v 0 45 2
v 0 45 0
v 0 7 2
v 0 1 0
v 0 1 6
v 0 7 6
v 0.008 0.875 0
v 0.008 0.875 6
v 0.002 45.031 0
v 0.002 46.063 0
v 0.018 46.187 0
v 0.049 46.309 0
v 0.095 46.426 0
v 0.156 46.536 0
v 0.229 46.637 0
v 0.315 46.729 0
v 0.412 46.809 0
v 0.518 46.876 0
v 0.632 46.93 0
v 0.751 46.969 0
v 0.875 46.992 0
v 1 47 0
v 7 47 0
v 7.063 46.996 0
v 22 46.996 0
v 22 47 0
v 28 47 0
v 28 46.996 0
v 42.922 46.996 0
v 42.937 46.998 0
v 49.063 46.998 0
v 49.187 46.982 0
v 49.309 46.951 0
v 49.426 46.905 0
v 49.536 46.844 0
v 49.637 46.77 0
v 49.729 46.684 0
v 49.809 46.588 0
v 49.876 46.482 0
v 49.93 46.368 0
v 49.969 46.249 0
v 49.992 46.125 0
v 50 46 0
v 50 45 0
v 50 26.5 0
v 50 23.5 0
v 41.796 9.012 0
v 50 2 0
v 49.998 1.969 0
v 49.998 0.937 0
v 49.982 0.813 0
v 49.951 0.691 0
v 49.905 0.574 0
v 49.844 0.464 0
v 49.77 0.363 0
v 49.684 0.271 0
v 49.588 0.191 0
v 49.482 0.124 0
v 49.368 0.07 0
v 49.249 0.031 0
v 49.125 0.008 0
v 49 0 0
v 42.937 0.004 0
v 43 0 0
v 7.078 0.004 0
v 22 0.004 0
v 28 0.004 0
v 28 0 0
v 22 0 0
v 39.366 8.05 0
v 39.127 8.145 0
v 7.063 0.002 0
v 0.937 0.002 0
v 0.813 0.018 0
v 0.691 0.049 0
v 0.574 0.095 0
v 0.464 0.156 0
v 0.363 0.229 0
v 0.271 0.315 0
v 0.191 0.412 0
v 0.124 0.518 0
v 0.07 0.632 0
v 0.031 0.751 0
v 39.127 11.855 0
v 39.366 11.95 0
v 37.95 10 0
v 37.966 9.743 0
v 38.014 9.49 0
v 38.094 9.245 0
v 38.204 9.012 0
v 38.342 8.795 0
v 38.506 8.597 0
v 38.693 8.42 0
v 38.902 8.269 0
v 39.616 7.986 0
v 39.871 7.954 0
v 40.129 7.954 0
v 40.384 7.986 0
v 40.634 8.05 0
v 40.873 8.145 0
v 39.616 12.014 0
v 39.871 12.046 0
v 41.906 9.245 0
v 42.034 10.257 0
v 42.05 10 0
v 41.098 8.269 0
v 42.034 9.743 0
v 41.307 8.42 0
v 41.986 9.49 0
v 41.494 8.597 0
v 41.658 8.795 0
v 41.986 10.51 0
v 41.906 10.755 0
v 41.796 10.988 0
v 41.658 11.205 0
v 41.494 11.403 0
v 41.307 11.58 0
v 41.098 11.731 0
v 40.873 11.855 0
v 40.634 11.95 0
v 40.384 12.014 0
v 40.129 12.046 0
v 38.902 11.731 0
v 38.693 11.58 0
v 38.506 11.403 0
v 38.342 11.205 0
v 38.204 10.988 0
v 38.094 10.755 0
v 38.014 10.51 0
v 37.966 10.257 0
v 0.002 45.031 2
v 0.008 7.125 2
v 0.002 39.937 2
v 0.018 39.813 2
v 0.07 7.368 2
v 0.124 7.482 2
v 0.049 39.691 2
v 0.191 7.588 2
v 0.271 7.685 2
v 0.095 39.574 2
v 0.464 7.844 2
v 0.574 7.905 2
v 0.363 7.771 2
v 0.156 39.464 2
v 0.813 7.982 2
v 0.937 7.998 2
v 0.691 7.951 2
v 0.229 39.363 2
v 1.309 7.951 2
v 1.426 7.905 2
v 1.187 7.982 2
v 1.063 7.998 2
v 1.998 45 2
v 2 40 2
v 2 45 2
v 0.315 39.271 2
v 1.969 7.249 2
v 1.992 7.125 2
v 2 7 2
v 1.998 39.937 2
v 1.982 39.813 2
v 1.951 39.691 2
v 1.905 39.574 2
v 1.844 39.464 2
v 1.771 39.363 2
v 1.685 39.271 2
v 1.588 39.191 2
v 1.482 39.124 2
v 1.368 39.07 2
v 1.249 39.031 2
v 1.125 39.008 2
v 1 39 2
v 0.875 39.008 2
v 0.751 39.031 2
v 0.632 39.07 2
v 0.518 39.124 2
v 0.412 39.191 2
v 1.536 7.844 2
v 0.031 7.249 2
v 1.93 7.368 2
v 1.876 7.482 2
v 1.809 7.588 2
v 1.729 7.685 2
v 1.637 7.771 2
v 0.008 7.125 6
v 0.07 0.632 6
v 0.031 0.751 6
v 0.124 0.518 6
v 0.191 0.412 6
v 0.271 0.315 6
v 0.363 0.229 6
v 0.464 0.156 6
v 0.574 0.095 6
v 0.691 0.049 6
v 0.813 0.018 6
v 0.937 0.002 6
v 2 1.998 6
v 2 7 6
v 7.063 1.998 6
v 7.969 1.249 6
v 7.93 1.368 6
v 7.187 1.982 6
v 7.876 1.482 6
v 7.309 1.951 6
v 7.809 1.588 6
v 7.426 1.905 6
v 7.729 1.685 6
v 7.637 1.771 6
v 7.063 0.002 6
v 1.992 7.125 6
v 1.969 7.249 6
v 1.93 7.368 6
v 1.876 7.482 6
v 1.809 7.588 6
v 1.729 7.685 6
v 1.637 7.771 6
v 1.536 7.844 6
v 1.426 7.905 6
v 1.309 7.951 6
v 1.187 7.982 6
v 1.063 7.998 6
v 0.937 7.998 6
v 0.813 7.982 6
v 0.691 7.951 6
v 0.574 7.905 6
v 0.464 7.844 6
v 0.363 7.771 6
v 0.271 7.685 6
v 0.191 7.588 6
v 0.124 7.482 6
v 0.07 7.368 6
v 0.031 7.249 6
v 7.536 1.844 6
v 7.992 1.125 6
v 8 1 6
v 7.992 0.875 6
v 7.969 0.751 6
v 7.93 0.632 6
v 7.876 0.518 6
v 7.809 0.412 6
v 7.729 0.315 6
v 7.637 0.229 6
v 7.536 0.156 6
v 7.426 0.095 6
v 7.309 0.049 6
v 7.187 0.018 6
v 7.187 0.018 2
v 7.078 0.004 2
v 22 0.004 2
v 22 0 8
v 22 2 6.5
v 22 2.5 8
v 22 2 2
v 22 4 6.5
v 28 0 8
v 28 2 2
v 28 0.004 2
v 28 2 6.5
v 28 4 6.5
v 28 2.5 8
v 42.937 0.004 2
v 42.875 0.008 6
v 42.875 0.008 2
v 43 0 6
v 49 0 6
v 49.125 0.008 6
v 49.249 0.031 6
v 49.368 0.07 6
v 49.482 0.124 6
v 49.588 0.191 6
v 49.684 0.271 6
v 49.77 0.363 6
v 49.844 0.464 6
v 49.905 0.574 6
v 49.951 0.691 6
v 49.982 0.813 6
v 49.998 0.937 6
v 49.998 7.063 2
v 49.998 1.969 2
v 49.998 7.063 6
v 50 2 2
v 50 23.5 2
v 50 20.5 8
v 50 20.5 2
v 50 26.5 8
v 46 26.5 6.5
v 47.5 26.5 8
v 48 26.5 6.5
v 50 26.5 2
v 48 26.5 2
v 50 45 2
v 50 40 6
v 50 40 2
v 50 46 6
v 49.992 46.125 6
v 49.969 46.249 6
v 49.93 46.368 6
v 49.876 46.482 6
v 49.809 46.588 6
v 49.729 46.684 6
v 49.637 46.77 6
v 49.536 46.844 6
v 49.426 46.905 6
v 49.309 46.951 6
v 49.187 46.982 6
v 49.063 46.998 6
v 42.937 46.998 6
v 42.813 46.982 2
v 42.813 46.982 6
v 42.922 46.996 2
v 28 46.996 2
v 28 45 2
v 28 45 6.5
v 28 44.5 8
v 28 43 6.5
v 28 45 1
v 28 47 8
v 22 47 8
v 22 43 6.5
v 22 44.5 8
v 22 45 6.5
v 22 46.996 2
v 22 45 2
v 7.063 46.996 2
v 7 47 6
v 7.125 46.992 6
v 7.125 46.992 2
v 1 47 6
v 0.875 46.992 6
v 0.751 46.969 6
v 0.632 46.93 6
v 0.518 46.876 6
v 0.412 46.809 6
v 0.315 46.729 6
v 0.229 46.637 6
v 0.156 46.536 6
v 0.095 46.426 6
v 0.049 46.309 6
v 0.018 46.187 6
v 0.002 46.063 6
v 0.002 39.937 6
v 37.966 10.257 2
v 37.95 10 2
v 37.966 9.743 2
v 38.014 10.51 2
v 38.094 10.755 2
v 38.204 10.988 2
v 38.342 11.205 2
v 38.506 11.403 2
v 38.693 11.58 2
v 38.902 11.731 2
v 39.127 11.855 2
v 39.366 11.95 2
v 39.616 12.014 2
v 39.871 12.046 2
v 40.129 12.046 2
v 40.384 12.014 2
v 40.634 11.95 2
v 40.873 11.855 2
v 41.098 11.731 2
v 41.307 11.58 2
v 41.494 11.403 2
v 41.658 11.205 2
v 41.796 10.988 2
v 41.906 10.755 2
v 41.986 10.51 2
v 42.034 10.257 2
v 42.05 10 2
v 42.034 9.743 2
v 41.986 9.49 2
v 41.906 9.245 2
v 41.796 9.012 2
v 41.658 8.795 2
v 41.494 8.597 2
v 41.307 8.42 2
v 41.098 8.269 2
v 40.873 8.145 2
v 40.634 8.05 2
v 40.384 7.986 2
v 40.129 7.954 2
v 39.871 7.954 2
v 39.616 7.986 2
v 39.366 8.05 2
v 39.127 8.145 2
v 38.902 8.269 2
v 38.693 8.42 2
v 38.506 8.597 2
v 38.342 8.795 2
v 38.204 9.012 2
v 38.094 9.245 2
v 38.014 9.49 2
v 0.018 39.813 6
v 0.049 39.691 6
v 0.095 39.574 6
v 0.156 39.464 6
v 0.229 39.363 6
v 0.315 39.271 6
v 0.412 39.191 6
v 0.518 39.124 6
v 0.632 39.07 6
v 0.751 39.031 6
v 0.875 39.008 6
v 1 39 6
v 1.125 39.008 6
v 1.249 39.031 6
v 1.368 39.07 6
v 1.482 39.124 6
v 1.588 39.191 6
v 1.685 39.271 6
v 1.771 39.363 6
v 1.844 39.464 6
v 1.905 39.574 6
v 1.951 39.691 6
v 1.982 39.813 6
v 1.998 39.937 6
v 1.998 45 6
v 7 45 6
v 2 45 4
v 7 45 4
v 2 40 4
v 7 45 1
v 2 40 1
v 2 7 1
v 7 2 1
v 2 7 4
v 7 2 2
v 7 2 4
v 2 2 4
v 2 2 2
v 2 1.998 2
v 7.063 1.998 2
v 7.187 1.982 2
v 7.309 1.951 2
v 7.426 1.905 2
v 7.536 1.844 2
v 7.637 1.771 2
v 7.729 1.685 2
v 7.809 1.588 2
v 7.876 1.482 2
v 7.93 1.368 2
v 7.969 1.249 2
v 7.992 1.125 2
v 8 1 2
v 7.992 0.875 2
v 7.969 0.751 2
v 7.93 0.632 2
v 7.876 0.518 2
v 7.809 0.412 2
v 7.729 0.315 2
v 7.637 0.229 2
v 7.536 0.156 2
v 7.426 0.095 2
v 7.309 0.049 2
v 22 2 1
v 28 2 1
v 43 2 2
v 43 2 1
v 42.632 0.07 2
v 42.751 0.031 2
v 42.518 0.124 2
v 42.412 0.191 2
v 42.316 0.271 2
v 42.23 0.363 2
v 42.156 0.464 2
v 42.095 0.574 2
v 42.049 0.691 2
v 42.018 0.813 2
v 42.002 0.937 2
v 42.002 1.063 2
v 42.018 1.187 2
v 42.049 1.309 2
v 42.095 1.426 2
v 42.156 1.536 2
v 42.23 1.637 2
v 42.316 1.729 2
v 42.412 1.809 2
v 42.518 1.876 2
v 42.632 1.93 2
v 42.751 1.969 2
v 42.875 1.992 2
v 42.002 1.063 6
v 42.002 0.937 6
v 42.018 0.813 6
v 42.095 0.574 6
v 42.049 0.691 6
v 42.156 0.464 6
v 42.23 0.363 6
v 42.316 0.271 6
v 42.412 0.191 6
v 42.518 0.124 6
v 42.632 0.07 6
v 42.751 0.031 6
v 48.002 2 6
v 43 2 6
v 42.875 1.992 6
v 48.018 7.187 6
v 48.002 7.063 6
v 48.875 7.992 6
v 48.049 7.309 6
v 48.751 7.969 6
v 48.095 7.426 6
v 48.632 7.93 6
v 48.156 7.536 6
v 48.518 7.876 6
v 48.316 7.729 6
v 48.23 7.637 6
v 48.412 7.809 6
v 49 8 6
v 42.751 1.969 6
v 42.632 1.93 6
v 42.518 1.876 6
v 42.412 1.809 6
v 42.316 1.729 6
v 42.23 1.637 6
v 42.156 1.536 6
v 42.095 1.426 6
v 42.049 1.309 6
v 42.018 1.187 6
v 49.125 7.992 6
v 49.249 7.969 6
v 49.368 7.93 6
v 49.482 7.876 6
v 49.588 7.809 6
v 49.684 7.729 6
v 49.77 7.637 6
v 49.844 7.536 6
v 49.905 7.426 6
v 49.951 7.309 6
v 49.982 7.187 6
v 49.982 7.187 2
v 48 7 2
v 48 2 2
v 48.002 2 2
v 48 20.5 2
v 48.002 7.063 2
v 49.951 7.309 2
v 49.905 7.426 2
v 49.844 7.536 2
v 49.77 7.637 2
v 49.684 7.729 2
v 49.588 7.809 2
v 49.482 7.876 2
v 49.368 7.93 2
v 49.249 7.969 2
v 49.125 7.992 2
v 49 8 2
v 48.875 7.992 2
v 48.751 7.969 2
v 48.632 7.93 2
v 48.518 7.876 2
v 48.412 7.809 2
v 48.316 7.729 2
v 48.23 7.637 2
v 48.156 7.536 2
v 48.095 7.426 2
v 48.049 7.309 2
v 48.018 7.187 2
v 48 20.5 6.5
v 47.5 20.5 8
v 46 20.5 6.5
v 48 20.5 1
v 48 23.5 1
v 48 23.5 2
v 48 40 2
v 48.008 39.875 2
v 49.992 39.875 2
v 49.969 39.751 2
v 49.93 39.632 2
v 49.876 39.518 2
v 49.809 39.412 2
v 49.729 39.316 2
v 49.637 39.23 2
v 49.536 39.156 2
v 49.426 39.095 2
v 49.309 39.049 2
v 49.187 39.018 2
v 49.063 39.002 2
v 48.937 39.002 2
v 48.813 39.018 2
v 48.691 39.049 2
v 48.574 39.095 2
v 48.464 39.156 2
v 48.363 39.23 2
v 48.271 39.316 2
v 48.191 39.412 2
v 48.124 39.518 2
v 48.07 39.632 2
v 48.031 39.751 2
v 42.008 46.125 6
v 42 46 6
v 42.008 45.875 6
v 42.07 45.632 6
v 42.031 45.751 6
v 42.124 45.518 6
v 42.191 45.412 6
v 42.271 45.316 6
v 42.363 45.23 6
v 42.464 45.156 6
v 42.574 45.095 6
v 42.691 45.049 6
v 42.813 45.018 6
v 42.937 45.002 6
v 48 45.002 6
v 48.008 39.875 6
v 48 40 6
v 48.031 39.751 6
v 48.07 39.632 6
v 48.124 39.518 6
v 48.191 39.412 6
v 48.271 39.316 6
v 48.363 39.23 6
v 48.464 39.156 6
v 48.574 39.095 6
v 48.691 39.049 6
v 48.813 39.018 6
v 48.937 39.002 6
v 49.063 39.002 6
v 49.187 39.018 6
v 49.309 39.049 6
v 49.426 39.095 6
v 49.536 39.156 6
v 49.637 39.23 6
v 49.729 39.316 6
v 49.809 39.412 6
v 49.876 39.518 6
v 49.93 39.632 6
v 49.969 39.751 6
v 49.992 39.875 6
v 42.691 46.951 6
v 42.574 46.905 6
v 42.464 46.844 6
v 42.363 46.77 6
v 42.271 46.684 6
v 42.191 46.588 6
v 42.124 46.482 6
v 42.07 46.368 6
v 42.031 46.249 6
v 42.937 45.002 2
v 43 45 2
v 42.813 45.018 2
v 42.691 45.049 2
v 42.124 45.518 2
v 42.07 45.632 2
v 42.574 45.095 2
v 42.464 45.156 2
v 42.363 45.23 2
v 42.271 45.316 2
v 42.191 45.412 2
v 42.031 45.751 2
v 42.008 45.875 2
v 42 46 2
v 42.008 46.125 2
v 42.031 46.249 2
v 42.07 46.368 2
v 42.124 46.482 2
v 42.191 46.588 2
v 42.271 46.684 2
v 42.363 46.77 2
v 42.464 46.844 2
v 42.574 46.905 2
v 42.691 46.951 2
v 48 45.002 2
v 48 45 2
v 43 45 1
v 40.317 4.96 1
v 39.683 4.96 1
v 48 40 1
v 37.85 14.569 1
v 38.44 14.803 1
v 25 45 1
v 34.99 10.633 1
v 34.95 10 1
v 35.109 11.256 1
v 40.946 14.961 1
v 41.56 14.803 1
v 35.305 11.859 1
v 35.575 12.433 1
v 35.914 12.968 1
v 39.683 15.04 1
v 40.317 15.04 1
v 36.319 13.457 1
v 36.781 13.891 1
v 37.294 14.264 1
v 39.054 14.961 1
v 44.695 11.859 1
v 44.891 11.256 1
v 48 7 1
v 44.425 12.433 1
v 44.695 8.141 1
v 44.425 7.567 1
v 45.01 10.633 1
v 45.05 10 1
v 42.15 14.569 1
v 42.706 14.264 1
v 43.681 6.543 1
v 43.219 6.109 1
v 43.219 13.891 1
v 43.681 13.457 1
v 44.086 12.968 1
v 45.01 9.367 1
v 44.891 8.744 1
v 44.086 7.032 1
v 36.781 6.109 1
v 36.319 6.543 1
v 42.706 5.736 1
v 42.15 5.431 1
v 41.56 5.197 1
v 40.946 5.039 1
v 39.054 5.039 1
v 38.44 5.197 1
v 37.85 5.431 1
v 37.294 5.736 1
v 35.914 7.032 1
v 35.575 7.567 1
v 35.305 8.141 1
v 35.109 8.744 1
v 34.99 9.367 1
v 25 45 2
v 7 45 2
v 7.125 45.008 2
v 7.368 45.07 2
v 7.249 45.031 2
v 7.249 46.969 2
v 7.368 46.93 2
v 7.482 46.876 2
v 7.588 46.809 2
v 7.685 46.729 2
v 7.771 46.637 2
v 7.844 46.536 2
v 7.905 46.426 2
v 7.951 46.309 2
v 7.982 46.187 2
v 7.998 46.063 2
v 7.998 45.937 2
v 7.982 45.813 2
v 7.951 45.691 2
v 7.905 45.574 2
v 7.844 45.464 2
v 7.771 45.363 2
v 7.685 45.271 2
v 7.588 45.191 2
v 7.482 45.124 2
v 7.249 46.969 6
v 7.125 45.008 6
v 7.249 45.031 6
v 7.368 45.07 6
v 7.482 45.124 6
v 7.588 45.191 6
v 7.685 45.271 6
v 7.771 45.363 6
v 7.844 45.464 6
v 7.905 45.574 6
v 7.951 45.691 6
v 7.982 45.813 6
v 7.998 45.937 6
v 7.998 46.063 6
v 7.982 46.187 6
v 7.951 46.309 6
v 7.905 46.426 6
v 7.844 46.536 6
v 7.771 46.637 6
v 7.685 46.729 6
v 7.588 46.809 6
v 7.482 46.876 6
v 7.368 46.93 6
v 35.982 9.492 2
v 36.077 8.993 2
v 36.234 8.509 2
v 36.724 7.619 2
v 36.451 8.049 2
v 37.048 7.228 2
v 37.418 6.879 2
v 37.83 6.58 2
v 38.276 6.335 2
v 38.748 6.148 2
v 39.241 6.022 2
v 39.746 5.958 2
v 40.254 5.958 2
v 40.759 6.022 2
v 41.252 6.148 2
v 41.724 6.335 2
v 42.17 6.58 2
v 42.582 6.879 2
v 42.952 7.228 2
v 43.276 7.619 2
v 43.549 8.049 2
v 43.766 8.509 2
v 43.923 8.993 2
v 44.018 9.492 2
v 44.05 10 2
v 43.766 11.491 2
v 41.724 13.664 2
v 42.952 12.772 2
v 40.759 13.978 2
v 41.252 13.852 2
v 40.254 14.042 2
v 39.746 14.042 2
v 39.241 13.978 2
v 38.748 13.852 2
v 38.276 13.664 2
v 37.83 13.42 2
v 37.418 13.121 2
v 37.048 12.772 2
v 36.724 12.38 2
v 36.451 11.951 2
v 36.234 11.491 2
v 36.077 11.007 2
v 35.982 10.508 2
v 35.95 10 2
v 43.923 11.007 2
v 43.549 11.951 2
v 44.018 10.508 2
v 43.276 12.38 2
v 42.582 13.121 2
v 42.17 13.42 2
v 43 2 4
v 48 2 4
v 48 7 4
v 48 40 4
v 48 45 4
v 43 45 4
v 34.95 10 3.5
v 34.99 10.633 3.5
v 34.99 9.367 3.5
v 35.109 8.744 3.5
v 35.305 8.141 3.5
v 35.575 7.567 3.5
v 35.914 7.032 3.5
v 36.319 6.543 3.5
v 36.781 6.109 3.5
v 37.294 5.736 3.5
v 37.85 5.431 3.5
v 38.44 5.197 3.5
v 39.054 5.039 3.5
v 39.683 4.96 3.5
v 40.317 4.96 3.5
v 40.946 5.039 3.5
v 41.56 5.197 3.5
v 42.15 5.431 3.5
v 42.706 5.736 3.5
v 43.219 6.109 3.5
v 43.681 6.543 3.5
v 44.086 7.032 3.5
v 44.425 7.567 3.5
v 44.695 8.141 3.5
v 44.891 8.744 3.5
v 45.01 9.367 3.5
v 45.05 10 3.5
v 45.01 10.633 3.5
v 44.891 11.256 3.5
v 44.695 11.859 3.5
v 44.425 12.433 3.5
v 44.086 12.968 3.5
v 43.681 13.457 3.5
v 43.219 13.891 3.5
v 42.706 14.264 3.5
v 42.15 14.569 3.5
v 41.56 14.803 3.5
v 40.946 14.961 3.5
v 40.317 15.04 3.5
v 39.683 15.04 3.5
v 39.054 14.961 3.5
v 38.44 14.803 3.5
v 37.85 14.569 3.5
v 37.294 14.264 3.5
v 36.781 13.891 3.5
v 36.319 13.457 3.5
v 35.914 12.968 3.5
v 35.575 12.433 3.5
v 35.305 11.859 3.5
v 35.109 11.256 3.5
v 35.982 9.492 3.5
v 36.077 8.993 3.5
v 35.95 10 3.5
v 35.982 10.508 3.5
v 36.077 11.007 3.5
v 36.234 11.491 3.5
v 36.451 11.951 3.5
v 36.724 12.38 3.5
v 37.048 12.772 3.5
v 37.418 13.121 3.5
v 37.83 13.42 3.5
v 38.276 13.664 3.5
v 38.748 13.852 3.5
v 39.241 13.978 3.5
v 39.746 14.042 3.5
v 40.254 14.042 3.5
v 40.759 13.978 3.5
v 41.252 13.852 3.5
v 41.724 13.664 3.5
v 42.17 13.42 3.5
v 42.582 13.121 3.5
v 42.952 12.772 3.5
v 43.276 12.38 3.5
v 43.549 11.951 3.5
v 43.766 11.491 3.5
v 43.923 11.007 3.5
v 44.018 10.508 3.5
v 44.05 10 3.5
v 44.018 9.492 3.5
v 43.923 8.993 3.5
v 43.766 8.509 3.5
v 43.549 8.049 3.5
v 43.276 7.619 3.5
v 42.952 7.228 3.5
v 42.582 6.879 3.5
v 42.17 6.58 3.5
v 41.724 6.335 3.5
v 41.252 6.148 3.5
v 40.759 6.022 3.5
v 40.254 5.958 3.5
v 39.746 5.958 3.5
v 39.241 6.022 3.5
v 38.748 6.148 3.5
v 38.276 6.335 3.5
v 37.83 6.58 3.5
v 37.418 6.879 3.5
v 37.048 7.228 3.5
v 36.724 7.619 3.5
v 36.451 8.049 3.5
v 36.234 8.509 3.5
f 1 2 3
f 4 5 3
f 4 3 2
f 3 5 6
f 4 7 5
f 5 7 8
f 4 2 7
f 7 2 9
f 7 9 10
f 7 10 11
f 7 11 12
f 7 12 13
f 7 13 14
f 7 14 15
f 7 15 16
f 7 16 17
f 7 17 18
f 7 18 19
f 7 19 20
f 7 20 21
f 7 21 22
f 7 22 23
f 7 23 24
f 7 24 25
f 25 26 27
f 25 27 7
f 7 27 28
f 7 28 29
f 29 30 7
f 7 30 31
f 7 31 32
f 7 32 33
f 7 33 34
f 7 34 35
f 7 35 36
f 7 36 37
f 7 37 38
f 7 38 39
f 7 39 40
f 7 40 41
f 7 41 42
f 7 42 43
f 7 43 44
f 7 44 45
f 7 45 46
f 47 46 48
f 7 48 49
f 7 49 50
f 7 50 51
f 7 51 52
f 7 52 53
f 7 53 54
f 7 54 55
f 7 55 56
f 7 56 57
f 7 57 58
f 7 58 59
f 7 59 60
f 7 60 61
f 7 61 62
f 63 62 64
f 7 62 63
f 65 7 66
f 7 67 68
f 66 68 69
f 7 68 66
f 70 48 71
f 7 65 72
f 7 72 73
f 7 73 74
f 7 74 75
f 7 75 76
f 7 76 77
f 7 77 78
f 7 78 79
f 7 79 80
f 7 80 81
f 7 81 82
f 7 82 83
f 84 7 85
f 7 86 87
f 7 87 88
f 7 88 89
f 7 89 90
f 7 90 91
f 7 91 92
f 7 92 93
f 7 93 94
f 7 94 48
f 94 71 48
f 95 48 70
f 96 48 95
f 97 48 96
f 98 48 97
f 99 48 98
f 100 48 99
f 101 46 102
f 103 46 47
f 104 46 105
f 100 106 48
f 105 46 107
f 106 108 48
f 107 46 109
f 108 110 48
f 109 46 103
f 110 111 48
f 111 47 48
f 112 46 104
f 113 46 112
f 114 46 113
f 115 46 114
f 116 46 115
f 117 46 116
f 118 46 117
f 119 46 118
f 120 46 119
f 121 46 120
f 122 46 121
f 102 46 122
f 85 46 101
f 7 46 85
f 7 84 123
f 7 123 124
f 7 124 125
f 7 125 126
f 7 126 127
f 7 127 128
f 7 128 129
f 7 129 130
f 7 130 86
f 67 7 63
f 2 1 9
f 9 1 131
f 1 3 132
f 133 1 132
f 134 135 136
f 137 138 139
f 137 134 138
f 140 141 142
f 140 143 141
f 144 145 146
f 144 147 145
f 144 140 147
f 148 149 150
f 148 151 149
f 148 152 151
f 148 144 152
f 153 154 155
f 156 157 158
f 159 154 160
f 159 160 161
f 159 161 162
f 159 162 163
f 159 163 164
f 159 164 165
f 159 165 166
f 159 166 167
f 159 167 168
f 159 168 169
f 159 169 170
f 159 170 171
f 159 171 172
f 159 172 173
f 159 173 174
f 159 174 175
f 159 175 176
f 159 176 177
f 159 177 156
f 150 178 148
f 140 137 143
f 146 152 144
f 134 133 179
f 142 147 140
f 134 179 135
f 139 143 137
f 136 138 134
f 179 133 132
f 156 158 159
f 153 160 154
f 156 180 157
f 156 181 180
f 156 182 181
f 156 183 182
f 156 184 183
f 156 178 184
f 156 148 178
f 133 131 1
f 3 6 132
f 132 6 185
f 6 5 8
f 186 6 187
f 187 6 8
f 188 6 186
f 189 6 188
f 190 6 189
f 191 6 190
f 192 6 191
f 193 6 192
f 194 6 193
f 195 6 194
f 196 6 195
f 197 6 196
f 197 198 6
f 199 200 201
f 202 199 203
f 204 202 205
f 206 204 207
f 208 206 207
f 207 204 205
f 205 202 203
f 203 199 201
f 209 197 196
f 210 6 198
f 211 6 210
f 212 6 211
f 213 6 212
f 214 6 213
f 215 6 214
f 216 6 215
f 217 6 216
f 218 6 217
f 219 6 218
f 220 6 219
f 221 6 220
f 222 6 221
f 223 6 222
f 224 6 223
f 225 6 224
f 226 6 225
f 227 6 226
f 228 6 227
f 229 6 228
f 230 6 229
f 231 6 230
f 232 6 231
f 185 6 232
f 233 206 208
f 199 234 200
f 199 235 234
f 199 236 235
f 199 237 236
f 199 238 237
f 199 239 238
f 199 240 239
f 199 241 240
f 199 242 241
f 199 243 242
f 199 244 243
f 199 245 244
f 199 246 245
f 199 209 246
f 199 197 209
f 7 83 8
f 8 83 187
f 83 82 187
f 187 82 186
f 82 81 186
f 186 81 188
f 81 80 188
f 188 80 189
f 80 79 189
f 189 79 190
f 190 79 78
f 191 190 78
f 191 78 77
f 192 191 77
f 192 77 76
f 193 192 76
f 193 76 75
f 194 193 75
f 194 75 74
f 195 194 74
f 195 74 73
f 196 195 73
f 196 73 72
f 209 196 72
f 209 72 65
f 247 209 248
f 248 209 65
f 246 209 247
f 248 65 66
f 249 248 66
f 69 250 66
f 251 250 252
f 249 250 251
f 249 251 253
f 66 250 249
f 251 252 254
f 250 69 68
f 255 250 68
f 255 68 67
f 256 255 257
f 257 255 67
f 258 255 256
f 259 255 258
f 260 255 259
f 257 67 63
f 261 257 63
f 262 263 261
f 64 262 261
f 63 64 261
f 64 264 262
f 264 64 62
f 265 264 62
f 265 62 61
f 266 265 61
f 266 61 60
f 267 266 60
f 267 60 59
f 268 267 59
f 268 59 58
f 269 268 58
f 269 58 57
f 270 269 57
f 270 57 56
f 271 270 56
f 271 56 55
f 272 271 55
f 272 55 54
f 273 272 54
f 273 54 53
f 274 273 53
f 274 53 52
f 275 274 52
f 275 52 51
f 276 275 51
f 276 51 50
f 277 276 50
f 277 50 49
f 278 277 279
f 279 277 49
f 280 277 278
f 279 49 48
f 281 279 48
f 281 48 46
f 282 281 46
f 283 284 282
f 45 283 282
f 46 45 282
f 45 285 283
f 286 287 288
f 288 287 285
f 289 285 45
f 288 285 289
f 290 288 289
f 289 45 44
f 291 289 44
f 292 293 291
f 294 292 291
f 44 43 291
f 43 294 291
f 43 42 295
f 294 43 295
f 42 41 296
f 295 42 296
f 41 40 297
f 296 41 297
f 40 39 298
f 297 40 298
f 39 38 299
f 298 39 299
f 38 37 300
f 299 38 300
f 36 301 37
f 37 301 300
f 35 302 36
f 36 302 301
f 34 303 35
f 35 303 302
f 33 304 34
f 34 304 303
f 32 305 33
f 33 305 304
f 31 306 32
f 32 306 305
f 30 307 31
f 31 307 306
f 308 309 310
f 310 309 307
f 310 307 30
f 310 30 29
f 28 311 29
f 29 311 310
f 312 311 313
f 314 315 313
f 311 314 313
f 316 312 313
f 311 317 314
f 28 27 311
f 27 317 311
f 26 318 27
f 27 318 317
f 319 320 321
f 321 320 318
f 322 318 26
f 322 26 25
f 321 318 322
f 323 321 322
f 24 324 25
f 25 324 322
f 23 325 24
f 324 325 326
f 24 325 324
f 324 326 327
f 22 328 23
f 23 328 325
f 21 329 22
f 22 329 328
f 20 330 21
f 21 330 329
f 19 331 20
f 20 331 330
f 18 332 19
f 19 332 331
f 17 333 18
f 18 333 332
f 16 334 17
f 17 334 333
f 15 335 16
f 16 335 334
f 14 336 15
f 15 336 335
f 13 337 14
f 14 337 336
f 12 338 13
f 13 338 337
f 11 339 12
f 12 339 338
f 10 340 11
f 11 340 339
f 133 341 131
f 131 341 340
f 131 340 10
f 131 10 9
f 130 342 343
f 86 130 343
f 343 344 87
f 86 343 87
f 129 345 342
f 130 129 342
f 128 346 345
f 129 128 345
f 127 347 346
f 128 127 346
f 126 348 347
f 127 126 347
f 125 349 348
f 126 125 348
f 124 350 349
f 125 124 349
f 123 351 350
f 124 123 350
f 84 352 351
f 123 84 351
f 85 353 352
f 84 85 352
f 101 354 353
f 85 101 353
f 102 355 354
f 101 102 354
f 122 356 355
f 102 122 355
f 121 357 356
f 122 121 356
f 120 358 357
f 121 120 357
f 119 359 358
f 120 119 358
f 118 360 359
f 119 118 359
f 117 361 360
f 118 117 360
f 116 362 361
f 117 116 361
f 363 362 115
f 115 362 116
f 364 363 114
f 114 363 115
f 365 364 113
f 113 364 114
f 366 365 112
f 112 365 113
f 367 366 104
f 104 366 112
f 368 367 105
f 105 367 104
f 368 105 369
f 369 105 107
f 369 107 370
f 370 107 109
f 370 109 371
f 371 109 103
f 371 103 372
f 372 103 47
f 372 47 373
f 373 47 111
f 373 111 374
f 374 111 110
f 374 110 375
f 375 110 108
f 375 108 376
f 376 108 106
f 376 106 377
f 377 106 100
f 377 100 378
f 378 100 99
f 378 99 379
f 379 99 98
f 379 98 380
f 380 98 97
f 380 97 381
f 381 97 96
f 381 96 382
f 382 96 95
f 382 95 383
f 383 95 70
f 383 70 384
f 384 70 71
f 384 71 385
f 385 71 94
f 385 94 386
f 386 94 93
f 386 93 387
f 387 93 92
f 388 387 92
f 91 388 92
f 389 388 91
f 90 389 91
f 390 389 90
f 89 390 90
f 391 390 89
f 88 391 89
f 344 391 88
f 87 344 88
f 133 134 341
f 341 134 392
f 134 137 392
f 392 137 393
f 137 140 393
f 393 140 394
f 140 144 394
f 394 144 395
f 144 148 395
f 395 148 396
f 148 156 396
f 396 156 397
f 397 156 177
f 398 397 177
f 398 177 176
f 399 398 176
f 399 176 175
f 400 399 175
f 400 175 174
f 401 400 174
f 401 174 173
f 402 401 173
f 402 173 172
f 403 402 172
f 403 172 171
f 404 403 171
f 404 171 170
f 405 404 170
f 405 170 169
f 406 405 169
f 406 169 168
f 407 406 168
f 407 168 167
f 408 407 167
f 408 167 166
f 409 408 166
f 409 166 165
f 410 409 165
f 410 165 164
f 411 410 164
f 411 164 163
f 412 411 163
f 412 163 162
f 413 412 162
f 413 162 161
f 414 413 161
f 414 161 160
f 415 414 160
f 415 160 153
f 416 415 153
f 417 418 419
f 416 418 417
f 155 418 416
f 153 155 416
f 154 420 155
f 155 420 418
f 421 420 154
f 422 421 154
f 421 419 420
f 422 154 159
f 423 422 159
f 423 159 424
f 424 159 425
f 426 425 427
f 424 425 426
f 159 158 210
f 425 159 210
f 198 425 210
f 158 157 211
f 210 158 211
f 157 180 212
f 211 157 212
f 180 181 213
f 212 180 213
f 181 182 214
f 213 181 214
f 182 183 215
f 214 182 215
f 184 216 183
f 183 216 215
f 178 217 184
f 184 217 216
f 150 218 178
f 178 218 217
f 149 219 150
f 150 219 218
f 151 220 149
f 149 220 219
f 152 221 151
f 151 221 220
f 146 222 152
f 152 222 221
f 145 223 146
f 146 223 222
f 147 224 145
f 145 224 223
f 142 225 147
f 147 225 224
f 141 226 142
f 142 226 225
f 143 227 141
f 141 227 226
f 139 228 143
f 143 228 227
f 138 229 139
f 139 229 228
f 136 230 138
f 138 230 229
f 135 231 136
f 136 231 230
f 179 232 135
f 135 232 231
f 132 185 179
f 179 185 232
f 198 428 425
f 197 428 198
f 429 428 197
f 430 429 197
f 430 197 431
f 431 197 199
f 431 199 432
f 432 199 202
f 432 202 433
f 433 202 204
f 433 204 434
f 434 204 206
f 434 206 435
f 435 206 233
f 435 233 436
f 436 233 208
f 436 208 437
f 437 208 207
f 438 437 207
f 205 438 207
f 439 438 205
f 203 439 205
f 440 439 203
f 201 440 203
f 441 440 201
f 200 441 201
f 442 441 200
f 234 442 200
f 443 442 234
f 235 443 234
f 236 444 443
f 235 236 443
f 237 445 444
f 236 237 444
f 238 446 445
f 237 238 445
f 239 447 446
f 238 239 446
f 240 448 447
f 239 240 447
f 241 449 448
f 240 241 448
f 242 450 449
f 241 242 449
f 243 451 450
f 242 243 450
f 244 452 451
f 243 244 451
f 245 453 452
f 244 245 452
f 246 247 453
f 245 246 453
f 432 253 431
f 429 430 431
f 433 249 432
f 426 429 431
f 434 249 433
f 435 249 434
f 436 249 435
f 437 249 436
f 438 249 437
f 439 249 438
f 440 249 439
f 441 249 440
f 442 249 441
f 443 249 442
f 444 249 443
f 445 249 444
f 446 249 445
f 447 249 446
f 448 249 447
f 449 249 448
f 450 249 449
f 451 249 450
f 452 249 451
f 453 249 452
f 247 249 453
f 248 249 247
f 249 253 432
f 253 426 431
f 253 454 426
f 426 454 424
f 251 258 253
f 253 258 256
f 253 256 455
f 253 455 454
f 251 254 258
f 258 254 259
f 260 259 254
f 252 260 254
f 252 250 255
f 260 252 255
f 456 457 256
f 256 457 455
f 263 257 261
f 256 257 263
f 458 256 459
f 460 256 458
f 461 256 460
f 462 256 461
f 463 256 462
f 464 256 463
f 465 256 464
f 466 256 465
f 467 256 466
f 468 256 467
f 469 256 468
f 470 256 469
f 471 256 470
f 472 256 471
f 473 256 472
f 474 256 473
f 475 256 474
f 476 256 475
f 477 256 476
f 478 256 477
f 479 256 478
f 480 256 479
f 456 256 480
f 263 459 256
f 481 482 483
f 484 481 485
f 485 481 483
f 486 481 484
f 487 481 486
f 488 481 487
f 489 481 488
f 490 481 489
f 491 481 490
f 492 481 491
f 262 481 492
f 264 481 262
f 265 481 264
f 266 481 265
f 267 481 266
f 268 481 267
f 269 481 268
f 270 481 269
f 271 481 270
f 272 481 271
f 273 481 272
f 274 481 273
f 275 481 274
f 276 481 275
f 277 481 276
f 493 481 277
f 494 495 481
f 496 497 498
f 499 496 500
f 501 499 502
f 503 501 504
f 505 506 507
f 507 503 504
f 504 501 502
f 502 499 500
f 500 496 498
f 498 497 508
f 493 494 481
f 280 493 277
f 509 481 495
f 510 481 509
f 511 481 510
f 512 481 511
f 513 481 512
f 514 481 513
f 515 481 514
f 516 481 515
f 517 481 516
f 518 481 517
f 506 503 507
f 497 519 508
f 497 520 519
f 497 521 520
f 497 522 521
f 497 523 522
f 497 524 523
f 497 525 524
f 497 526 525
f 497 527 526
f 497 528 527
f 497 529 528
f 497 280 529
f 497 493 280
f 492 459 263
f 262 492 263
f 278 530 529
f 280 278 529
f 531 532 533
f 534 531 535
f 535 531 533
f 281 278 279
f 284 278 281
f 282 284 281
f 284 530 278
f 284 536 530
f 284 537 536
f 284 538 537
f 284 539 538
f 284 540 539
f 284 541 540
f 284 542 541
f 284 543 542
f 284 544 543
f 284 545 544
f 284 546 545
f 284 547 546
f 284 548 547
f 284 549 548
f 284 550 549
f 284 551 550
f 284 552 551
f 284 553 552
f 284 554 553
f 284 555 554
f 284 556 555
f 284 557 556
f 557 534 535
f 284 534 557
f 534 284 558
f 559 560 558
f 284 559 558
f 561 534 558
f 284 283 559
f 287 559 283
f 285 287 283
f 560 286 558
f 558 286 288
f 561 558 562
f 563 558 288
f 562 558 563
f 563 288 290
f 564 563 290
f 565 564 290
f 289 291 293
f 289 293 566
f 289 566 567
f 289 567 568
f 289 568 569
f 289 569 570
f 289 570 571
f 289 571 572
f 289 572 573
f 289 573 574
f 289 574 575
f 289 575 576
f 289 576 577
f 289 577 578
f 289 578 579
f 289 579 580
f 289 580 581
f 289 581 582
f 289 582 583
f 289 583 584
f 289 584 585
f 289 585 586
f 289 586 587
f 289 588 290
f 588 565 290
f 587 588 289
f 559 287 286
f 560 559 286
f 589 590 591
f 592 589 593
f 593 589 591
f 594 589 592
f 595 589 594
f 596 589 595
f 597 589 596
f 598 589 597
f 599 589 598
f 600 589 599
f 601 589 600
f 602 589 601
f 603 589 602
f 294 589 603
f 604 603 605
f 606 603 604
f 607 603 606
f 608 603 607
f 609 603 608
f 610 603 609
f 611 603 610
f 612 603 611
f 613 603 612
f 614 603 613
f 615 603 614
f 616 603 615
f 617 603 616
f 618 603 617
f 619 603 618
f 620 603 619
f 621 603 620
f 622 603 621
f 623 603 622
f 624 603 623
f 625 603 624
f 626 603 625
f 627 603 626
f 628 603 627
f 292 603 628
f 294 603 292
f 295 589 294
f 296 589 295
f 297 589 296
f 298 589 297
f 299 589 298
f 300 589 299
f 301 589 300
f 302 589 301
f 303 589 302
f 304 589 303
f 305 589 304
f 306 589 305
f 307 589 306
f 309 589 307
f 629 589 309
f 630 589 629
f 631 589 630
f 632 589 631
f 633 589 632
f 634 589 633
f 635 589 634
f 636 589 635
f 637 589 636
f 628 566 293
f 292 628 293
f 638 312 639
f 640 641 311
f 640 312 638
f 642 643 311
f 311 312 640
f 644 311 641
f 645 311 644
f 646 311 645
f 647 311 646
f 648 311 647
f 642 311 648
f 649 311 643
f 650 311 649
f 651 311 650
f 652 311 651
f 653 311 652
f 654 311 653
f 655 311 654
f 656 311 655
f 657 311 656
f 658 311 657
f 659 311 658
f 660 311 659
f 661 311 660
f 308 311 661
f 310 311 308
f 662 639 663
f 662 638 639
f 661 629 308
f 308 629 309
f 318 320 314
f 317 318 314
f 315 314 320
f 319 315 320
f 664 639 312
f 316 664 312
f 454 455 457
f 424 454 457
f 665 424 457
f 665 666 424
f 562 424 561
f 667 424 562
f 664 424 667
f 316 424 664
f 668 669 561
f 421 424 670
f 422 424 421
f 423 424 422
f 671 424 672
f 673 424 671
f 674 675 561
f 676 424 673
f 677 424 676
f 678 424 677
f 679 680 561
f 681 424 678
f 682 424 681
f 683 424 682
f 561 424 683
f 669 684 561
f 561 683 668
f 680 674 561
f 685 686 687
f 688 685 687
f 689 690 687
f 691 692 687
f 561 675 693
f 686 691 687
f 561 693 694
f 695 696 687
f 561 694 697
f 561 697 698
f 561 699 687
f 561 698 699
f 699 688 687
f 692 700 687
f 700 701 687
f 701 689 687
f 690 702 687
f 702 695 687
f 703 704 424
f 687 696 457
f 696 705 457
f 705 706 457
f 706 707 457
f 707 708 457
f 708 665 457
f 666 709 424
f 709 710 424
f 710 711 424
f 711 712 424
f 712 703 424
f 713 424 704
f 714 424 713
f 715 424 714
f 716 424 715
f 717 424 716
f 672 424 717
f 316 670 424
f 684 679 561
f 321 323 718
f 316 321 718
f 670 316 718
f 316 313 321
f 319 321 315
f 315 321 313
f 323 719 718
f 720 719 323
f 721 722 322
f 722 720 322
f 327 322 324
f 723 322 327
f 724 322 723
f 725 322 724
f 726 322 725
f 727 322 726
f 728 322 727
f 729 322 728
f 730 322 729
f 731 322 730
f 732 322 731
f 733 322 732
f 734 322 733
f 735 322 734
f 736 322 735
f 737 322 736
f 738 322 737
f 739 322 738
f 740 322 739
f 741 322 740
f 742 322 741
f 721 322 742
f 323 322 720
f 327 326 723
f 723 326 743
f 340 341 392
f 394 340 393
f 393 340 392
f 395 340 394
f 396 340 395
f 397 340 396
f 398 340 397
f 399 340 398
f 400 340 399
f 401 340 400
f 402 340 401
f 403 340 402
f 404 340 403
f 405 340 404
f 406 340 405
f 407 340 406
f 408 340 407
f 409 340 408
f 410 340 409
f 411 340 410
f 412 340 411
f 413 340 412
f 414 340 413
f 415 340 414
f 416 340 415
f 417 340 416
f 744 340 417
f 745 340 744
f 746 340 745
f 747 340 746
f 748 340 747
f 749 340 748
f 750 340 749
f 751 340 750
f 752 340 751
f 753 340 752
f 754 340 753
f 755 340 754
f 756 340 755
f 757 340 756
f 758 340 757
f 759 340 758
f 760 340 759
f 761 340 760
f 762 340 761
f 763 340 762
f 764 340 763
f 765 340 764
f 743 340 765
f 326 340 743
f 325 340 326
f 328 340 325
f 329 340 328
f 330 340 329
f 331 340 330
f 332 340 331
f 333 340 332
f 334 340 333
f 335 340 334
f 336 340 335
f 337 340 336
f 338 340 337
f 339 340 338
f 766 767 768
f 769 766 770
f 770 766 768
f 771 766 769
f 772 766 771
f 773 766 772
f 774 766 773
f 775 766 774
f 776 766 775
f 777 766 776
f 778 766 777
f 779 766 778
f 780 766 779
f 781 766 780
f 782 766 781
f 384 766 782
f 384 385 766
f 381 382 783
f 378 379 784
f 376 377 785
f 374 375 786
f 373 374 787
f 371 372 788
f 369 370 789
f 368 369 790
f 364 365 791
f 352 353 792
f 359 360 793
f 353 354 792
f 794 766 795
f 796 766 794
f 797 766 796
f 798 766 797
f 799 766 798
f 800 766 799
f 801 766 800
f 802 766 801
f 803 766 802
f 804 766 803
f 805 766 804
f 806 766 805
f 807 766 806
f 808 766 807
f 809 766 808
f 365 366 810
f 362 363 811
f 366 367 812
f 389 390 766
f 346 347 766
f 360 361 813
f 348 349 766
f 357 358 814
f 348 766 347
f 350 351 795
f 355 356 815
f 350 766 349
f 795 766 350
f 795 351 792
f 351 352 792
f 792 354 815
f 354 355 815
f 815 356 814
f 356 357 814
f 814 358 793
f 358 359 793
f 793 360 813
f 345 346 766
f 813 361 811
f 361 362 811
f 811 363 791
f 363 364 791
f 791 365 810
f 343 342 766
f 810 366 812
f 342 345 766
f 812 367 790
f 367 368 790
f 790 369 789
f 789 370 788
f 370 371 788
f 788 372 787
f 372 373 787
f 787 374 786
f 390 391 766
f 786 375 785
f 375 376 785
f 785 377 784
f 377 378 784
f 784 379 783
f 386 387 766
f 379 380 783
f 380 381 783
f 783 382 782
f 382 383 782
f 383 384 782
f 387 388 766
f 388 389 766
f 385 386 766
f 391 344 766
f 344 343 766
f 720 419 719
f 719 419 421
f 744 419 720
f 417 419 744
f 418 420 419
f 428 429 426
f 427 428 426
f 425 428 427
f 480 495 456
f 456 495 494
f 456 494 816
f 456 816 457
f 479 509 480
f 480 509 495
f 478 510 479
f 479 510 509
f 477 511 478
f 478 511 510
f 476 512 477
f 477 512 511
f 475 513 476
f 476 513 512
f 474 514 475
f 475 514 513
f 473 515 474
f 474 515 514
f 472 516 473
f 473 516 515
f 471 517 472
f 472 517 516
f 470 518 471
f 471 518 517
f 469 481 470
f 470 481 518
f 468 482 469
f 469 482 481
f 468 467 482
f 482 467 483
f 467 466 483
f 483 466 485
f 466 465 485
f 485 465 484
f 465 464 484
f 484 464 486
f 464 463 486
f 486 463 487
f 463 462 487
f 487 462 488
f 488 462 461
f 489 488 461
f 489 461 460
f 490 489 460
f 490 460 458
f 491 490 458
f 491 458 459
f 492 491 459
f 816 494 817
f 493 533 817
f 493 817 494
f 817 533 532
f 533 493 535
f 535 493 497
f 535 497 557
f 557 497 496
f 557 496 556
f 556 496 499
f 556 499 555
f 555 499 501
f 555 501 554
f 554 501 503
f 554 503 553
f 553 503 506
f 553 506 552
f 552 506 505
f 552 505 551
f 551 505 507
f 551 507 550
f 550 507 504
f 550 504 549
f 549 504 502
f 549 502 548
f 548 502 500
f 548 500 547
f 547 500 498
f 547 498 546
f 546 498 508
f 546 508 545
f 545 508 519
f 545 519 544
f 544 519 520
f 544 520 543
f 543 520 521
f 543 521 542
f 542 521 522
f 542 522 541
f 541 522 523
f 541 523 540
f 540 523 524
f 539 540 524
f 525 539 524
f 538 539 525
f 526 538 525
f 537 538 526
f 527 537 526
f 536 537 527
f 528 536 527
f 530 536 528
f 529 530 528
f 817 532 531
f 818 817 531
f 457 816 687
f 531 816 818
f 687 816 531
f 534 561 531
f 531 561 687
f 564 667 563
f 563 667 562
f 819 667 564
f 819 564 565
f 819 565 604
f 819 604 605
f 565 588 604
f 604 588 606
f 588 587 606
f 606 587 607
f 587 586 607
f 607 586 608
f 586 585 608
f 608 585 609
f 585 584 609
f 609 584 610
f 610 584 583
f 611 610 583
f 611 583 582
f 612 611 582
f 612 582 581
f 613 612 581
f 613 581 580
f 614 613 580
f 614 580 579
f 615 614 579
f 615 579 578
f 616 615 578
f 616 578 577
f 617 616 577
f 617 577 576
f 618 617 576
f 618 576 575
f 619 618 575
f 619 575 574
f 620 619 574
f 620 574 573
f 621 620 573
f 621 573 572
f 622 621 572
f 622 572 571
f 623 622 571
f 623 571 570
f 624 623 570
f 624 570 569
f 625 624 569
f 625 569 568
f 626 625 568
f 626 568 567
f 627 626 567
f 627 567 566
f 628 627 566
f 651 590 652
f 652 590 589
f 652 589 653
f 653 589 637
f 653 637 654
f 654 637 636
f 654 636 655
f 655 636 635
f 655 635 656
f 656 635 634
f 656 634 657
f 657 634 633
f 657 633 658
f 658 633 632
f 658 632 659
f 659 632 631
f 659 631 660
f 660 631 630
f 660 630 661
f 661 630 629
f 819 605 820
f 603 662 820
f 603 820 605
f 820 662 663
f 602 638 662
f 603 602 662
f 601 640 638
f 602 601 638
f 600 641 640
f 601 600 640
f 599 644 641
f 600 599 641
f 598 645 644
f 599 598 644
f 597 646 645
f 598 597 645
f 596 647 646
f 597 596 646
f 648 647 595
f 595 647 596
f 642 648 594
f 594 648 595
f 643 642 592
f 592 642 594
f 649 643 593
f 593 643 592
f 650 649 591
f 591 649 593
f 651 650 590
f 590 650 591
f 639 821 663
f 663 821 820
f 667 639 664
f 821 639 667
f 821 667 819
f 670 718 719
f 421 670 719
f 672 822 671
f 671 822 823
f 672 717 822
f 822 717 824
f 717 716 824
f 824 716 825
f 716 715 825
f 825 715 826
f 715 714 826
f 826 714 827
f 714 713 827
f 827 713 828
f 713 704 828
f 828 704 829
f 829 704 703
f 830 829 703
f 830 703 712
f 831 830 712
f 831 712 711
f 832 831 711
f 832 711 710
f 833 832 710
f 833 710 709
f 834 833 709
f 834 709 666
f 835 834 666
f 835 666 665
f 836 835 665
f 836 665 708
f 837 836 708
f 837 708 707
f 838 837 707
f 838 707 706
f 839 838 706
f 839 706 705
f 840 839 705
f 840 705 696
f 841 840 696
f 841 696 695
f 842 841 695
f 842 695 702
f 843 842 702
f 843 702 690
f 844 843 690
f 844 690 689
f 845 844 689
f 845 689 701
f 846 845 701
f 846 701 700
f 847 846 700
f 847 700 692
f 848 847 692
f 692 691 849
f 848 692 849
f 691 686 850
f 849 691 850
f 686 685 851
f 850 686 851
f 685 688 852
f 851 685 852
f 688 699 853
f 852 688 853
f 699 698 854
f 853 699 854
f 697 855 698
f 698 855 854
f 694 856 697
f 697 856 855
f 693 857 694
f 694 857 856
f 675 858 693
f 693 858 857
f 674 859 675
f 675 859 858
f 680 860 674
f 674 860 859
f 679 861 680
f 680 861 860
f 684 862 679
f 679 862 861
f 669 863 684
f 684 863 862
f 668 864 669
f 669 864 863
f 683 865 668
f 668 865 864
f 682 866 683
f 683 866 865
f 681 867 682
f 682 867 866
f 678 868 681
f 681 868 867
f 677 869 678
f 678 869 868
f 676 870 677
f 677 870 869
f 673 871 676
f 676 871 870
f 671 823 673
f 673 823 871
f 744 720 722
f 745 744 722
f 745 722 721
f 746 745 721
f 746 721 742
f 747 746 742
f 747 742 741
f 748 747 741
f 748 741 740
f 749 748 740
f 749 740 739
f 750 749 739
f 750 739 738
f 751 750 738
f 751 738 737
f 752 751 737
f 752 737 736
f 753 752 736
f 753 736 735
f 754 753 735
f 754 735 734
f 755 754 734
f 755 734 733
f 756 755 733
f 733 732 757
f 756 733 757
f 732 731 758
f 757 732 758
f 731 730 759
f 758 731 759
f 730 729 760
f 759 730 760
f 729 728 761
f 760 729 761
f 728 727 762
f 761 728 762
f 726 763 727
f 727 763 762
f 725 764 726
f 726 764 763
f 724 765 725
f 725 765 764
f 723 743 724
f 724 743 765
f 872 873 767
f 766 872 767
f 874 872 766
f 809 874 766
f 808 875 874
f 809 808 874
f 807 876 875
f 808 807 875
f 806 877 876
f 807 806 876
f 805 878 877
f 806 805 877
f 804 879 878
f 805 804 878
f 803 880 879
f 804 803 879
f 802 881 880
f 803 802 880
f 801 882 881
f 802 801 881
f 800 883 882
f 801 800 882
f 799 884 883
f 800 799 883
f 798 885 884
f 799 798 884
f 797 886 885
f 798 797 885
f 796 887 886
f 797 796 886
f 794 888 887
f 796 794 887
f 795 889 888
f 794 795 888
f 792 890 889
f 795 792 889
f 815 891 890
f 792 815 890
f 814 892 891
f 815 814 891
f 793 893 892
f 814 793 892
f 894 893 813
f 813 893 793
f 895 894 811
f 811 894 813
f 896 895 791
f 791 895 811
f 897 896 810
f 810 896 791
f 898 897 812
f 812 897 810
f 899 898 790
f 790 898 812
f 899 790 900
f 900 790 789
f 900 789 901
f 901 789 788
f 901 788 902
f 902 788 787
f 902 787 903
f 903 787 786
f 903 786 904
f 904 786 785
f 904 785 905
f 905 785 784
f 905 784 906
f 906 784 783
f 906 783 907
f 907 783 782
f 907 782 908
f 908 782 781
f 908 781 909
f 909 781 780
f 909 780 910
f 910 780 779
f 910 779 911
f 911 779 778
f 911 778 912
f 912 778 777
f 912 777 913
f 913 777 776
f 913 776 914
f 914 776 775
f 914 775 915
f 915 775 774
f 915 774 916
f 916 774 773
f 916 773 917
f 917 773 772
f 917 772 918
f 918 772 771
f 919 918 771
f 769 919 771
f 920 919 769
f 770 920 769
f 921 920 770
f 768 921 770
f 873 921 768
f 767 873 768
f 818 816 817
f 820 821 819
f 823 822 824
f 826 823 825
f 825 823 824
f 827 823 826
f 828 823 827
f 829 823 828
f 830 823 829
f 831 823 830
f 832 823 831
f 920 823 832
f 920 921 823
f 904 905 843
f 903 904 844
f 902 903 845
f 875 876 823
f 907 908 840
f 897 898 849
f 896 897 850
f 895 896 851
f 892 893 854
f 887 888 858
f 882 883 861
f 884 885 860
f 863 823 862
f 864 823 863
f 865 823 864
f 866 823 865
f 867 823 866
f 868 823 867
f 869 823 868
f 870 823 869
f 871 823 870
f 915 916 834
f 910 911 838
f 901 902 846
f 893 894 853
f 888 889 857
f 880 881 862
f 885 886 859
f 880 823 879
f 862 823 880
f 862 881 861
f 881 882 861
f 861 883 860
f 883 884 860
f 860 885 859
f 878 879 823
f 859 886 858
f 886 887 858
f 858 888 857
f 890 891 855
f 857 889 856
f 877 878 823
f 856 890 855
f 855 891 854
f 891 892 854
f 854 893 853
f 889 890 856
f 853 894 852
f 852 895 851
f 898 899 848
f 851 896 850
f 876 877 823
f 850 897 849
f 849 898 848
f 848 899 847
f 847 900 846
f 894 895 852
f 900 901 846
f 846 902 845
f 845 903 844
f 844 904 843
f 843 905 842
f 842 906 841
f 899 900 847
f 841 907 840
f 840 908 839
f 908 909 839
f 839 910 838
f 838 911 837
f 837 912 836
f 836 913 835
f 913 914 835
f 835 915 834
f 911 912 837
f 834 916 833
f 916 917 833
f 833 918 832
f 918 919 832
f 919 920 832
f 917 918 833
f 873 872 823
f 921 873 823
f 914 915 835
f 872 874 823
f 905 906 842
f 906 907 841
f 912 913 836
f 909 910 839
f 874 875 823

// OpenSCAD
module support(x, y, ang, length, height) {
	border=2;
	translate([x,y,0])
	rotate(a=ang)
		union() {
			polyhedron(
				points=[ [0,0,0], [0,length,0], [length,0,0],
  	                [0,0,height], [0,length,height], [length,0,height] ],
				triangles=[ [2,1,0], [3,4,5], 
  	                   [1,5,4], [2,5,1],
								[2,0,5], [0,3,5],
								[4,3,0], [0,1,4] ]
			);
			hull() {
				translate([length, -border/2, 0])
					cylinder(r=border/2, h=height+2);
				translate([-border/2, -border/2, 0])
					cylinder(r=border/2, h=height+2);
			}
			hull() {
				translate([-border/2, length, 0])
					cylinder(r=border/2, h=height+2);
				translate([-border/2, -border/2, 0])
					cylinder(r=border/2, h=height+2);
			}
		}
}

module snapper(x,y, height, length, ang) {
	translate([x,y,0])
	rotate(a=ang)
	translate([-length/2,-2,0])
		cube(size=[length,2,height]);

	translate([x,y,height-1.5])
	rotate(a=ang)
	translate([-length/2,0,0])
		difference() {
			cube(size=[length,2,1.5]);
			translate([0,2,0])
			rotate([45,0,0])
				cube(size=[length,4,4]);
		}
}

module trove(xsize, ysize) {
	height = 8;
	border = 2;

	translate([border,border,0])
	union() {
		// frame
		difference() {
			hull() {
				translate([0,0,0])
					cylinder(r=border, h=2);
				translate([xsize,0,0])
					cylinder(r=border, h=2);
				translate([0,ysize,0])
					cylinder(r=border, h=2);
				translate([xsize,ysize,0])
					cylinder(r=border, h=2);
			}
			translate([0,0,1])
				cube(size=[xsize, ysize, 1]);
			
		}
/*		difference() {
			hull() {
				translate([0,0,0])
					cylinder(r=border, h=height);
				translate([xsize,0,0])
					cylinder(r=border, h=height);
				translate([0,ysize,0])
					cylinder(r=border, h=height);
				translate([xsize,ysize,0])
					cylinder(r=border, h=height);
			}
			translate([0,0,1])
				cube(size=[xsize,ysize,height-1]);

			translate([10,0-border,1])
				cube(size=[xsize-20,ysize+2*border,height-1]);

			translate([0-border,10,1])
				cube(size=[xsize+2*border,ysize-20,height-1]);

		}*/

 	   // auflagen
		support(0,0, 0, 5, 4);
		support(xsize,0, 90, 5, 4);
		support(0,ysize, 270, 5, 4);
		support(xsize,ysize, 180, 5, 4);

		//nubsies
		//snapper(0, (ysize/2), height, 6, 270);
		snapper(xsize, (ysize/2), height, 6, 90);
		snapper((xsize/2), 0, height, 6, 0);
		snapper((xsize/2), ysize, height, 6, 180);
	}
}

module trove_with_hole(xsize, ysize, xpos, ypos, diameter) {
	rad = diameter/2;
	difference() {	
		union() {
			trove(xsize, ysize);
			translate([xpos,ypos,0])
			cylinder(h=3.5, r=rad+3);	
		}	
		translate([xpos,ypos,0])
			cylinder(h=3.5, r=rad);
		translate([xpos,ypos,2])
			cylinder(h=1.5, r=rad+2);
	}
}


$fn=50;
trove_with_hole(46,43, 40,10,4.1);
